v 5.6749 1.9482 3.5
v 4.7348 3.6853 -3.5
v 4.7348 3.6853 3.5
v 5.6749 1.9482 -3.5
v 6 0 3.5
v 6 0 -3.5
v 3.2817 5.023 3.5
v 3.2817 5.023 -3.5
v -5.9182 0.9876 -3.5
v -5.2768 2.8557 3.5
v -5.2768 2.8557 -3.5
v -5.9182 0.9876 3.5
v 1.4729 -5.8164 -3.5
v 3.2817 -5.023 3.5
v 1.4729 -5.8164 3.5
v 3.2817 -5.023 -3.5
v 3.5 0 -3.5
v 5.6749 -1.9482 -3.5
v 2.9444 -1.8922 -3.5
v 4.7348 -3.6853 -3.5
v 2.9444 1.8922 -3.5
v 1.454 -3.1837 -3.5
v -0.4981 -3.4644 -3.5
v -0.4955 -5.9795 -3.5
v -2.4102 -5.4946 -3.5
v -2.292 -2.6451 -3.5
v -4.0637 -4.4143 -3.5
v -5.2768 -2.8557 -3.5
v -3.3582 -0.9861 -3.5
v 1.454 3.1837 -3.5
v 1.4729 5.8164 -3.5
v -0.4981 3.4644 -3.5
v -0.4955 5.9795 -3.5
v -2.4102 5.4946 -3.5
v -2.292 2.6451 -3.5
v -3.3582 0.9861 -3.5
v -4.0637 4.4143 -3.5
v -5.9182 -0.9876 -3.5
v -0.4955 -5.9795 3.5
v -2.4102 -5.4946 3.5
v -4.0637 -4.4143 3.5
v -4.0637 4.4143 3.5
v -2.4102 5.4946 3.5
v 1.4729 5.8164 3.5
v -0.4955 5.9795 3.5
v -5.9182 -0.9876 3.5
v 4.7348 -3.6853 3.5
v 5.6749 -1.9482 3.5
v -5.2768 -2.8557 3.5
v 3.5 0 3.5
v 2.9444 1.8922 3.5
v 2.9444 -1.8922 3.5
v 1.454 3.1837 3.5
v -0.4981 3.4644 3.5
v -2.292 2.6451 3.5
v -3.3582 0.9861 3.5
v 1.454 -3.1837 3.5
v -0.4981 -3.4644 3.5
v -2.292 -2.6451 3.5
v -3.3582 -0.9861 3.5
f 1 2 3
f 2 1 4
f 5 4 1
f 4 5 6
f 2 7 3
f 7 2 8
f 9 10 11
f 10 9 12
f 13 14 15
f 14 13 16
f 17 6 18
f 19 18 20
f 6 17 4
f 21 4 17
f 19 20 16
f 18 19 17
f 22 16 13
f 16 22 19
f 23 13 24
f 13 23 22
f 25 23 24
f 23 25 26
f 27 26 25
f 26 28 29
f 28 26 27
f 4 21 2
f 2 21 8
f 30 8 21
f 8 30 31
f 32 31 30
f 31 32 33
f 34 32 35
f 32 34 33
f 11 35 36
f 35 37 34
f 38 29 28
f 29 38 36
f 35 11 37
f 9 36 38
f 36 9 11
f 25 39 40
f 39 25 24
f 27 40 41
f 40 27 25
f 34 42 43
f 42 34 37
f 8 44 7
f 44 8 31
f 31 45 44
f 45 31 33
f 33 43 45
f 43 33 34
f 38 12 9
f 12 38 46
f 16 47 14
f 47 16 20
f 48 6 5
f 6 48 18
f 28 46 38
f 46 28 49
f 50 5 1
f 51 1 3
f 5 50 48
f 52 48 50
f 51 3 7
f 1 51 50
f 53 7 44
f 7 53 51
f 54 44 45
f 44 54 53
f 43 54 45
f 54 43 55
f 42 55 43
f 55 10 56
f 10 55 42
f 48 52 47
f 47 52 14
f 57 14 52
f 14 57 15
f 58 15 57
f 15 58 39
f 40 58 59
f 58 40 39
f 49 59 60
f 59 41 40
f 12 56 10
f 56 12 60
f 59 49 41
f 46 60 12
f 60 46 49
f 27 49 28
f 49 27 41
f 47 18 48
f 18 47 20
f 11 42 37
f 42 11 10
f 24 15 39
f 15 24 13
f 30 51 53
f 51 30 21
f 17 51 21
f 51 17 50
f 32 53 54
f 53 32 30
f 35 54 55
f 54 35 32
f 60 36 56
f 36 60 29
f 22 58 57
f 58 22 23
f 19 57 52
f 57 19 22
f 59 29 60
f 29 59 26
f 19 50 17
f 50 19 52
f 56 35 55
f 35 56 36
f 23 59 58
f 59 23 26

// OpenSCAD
WHEEL_DIAMETER = 12;
INNER_HOLE_DIAMETER=7;
WHEEL_THICKNESS = 7;

difference() {
    cylinder(h=WHEEL_THICKNESS, r=WHEEL_DIAMETER / 2, center=true);
    cylinder(h = WHEEL_THICKNESS * 2, r=INNER_HOLE_DIAMETER / 2, center=true);
}
